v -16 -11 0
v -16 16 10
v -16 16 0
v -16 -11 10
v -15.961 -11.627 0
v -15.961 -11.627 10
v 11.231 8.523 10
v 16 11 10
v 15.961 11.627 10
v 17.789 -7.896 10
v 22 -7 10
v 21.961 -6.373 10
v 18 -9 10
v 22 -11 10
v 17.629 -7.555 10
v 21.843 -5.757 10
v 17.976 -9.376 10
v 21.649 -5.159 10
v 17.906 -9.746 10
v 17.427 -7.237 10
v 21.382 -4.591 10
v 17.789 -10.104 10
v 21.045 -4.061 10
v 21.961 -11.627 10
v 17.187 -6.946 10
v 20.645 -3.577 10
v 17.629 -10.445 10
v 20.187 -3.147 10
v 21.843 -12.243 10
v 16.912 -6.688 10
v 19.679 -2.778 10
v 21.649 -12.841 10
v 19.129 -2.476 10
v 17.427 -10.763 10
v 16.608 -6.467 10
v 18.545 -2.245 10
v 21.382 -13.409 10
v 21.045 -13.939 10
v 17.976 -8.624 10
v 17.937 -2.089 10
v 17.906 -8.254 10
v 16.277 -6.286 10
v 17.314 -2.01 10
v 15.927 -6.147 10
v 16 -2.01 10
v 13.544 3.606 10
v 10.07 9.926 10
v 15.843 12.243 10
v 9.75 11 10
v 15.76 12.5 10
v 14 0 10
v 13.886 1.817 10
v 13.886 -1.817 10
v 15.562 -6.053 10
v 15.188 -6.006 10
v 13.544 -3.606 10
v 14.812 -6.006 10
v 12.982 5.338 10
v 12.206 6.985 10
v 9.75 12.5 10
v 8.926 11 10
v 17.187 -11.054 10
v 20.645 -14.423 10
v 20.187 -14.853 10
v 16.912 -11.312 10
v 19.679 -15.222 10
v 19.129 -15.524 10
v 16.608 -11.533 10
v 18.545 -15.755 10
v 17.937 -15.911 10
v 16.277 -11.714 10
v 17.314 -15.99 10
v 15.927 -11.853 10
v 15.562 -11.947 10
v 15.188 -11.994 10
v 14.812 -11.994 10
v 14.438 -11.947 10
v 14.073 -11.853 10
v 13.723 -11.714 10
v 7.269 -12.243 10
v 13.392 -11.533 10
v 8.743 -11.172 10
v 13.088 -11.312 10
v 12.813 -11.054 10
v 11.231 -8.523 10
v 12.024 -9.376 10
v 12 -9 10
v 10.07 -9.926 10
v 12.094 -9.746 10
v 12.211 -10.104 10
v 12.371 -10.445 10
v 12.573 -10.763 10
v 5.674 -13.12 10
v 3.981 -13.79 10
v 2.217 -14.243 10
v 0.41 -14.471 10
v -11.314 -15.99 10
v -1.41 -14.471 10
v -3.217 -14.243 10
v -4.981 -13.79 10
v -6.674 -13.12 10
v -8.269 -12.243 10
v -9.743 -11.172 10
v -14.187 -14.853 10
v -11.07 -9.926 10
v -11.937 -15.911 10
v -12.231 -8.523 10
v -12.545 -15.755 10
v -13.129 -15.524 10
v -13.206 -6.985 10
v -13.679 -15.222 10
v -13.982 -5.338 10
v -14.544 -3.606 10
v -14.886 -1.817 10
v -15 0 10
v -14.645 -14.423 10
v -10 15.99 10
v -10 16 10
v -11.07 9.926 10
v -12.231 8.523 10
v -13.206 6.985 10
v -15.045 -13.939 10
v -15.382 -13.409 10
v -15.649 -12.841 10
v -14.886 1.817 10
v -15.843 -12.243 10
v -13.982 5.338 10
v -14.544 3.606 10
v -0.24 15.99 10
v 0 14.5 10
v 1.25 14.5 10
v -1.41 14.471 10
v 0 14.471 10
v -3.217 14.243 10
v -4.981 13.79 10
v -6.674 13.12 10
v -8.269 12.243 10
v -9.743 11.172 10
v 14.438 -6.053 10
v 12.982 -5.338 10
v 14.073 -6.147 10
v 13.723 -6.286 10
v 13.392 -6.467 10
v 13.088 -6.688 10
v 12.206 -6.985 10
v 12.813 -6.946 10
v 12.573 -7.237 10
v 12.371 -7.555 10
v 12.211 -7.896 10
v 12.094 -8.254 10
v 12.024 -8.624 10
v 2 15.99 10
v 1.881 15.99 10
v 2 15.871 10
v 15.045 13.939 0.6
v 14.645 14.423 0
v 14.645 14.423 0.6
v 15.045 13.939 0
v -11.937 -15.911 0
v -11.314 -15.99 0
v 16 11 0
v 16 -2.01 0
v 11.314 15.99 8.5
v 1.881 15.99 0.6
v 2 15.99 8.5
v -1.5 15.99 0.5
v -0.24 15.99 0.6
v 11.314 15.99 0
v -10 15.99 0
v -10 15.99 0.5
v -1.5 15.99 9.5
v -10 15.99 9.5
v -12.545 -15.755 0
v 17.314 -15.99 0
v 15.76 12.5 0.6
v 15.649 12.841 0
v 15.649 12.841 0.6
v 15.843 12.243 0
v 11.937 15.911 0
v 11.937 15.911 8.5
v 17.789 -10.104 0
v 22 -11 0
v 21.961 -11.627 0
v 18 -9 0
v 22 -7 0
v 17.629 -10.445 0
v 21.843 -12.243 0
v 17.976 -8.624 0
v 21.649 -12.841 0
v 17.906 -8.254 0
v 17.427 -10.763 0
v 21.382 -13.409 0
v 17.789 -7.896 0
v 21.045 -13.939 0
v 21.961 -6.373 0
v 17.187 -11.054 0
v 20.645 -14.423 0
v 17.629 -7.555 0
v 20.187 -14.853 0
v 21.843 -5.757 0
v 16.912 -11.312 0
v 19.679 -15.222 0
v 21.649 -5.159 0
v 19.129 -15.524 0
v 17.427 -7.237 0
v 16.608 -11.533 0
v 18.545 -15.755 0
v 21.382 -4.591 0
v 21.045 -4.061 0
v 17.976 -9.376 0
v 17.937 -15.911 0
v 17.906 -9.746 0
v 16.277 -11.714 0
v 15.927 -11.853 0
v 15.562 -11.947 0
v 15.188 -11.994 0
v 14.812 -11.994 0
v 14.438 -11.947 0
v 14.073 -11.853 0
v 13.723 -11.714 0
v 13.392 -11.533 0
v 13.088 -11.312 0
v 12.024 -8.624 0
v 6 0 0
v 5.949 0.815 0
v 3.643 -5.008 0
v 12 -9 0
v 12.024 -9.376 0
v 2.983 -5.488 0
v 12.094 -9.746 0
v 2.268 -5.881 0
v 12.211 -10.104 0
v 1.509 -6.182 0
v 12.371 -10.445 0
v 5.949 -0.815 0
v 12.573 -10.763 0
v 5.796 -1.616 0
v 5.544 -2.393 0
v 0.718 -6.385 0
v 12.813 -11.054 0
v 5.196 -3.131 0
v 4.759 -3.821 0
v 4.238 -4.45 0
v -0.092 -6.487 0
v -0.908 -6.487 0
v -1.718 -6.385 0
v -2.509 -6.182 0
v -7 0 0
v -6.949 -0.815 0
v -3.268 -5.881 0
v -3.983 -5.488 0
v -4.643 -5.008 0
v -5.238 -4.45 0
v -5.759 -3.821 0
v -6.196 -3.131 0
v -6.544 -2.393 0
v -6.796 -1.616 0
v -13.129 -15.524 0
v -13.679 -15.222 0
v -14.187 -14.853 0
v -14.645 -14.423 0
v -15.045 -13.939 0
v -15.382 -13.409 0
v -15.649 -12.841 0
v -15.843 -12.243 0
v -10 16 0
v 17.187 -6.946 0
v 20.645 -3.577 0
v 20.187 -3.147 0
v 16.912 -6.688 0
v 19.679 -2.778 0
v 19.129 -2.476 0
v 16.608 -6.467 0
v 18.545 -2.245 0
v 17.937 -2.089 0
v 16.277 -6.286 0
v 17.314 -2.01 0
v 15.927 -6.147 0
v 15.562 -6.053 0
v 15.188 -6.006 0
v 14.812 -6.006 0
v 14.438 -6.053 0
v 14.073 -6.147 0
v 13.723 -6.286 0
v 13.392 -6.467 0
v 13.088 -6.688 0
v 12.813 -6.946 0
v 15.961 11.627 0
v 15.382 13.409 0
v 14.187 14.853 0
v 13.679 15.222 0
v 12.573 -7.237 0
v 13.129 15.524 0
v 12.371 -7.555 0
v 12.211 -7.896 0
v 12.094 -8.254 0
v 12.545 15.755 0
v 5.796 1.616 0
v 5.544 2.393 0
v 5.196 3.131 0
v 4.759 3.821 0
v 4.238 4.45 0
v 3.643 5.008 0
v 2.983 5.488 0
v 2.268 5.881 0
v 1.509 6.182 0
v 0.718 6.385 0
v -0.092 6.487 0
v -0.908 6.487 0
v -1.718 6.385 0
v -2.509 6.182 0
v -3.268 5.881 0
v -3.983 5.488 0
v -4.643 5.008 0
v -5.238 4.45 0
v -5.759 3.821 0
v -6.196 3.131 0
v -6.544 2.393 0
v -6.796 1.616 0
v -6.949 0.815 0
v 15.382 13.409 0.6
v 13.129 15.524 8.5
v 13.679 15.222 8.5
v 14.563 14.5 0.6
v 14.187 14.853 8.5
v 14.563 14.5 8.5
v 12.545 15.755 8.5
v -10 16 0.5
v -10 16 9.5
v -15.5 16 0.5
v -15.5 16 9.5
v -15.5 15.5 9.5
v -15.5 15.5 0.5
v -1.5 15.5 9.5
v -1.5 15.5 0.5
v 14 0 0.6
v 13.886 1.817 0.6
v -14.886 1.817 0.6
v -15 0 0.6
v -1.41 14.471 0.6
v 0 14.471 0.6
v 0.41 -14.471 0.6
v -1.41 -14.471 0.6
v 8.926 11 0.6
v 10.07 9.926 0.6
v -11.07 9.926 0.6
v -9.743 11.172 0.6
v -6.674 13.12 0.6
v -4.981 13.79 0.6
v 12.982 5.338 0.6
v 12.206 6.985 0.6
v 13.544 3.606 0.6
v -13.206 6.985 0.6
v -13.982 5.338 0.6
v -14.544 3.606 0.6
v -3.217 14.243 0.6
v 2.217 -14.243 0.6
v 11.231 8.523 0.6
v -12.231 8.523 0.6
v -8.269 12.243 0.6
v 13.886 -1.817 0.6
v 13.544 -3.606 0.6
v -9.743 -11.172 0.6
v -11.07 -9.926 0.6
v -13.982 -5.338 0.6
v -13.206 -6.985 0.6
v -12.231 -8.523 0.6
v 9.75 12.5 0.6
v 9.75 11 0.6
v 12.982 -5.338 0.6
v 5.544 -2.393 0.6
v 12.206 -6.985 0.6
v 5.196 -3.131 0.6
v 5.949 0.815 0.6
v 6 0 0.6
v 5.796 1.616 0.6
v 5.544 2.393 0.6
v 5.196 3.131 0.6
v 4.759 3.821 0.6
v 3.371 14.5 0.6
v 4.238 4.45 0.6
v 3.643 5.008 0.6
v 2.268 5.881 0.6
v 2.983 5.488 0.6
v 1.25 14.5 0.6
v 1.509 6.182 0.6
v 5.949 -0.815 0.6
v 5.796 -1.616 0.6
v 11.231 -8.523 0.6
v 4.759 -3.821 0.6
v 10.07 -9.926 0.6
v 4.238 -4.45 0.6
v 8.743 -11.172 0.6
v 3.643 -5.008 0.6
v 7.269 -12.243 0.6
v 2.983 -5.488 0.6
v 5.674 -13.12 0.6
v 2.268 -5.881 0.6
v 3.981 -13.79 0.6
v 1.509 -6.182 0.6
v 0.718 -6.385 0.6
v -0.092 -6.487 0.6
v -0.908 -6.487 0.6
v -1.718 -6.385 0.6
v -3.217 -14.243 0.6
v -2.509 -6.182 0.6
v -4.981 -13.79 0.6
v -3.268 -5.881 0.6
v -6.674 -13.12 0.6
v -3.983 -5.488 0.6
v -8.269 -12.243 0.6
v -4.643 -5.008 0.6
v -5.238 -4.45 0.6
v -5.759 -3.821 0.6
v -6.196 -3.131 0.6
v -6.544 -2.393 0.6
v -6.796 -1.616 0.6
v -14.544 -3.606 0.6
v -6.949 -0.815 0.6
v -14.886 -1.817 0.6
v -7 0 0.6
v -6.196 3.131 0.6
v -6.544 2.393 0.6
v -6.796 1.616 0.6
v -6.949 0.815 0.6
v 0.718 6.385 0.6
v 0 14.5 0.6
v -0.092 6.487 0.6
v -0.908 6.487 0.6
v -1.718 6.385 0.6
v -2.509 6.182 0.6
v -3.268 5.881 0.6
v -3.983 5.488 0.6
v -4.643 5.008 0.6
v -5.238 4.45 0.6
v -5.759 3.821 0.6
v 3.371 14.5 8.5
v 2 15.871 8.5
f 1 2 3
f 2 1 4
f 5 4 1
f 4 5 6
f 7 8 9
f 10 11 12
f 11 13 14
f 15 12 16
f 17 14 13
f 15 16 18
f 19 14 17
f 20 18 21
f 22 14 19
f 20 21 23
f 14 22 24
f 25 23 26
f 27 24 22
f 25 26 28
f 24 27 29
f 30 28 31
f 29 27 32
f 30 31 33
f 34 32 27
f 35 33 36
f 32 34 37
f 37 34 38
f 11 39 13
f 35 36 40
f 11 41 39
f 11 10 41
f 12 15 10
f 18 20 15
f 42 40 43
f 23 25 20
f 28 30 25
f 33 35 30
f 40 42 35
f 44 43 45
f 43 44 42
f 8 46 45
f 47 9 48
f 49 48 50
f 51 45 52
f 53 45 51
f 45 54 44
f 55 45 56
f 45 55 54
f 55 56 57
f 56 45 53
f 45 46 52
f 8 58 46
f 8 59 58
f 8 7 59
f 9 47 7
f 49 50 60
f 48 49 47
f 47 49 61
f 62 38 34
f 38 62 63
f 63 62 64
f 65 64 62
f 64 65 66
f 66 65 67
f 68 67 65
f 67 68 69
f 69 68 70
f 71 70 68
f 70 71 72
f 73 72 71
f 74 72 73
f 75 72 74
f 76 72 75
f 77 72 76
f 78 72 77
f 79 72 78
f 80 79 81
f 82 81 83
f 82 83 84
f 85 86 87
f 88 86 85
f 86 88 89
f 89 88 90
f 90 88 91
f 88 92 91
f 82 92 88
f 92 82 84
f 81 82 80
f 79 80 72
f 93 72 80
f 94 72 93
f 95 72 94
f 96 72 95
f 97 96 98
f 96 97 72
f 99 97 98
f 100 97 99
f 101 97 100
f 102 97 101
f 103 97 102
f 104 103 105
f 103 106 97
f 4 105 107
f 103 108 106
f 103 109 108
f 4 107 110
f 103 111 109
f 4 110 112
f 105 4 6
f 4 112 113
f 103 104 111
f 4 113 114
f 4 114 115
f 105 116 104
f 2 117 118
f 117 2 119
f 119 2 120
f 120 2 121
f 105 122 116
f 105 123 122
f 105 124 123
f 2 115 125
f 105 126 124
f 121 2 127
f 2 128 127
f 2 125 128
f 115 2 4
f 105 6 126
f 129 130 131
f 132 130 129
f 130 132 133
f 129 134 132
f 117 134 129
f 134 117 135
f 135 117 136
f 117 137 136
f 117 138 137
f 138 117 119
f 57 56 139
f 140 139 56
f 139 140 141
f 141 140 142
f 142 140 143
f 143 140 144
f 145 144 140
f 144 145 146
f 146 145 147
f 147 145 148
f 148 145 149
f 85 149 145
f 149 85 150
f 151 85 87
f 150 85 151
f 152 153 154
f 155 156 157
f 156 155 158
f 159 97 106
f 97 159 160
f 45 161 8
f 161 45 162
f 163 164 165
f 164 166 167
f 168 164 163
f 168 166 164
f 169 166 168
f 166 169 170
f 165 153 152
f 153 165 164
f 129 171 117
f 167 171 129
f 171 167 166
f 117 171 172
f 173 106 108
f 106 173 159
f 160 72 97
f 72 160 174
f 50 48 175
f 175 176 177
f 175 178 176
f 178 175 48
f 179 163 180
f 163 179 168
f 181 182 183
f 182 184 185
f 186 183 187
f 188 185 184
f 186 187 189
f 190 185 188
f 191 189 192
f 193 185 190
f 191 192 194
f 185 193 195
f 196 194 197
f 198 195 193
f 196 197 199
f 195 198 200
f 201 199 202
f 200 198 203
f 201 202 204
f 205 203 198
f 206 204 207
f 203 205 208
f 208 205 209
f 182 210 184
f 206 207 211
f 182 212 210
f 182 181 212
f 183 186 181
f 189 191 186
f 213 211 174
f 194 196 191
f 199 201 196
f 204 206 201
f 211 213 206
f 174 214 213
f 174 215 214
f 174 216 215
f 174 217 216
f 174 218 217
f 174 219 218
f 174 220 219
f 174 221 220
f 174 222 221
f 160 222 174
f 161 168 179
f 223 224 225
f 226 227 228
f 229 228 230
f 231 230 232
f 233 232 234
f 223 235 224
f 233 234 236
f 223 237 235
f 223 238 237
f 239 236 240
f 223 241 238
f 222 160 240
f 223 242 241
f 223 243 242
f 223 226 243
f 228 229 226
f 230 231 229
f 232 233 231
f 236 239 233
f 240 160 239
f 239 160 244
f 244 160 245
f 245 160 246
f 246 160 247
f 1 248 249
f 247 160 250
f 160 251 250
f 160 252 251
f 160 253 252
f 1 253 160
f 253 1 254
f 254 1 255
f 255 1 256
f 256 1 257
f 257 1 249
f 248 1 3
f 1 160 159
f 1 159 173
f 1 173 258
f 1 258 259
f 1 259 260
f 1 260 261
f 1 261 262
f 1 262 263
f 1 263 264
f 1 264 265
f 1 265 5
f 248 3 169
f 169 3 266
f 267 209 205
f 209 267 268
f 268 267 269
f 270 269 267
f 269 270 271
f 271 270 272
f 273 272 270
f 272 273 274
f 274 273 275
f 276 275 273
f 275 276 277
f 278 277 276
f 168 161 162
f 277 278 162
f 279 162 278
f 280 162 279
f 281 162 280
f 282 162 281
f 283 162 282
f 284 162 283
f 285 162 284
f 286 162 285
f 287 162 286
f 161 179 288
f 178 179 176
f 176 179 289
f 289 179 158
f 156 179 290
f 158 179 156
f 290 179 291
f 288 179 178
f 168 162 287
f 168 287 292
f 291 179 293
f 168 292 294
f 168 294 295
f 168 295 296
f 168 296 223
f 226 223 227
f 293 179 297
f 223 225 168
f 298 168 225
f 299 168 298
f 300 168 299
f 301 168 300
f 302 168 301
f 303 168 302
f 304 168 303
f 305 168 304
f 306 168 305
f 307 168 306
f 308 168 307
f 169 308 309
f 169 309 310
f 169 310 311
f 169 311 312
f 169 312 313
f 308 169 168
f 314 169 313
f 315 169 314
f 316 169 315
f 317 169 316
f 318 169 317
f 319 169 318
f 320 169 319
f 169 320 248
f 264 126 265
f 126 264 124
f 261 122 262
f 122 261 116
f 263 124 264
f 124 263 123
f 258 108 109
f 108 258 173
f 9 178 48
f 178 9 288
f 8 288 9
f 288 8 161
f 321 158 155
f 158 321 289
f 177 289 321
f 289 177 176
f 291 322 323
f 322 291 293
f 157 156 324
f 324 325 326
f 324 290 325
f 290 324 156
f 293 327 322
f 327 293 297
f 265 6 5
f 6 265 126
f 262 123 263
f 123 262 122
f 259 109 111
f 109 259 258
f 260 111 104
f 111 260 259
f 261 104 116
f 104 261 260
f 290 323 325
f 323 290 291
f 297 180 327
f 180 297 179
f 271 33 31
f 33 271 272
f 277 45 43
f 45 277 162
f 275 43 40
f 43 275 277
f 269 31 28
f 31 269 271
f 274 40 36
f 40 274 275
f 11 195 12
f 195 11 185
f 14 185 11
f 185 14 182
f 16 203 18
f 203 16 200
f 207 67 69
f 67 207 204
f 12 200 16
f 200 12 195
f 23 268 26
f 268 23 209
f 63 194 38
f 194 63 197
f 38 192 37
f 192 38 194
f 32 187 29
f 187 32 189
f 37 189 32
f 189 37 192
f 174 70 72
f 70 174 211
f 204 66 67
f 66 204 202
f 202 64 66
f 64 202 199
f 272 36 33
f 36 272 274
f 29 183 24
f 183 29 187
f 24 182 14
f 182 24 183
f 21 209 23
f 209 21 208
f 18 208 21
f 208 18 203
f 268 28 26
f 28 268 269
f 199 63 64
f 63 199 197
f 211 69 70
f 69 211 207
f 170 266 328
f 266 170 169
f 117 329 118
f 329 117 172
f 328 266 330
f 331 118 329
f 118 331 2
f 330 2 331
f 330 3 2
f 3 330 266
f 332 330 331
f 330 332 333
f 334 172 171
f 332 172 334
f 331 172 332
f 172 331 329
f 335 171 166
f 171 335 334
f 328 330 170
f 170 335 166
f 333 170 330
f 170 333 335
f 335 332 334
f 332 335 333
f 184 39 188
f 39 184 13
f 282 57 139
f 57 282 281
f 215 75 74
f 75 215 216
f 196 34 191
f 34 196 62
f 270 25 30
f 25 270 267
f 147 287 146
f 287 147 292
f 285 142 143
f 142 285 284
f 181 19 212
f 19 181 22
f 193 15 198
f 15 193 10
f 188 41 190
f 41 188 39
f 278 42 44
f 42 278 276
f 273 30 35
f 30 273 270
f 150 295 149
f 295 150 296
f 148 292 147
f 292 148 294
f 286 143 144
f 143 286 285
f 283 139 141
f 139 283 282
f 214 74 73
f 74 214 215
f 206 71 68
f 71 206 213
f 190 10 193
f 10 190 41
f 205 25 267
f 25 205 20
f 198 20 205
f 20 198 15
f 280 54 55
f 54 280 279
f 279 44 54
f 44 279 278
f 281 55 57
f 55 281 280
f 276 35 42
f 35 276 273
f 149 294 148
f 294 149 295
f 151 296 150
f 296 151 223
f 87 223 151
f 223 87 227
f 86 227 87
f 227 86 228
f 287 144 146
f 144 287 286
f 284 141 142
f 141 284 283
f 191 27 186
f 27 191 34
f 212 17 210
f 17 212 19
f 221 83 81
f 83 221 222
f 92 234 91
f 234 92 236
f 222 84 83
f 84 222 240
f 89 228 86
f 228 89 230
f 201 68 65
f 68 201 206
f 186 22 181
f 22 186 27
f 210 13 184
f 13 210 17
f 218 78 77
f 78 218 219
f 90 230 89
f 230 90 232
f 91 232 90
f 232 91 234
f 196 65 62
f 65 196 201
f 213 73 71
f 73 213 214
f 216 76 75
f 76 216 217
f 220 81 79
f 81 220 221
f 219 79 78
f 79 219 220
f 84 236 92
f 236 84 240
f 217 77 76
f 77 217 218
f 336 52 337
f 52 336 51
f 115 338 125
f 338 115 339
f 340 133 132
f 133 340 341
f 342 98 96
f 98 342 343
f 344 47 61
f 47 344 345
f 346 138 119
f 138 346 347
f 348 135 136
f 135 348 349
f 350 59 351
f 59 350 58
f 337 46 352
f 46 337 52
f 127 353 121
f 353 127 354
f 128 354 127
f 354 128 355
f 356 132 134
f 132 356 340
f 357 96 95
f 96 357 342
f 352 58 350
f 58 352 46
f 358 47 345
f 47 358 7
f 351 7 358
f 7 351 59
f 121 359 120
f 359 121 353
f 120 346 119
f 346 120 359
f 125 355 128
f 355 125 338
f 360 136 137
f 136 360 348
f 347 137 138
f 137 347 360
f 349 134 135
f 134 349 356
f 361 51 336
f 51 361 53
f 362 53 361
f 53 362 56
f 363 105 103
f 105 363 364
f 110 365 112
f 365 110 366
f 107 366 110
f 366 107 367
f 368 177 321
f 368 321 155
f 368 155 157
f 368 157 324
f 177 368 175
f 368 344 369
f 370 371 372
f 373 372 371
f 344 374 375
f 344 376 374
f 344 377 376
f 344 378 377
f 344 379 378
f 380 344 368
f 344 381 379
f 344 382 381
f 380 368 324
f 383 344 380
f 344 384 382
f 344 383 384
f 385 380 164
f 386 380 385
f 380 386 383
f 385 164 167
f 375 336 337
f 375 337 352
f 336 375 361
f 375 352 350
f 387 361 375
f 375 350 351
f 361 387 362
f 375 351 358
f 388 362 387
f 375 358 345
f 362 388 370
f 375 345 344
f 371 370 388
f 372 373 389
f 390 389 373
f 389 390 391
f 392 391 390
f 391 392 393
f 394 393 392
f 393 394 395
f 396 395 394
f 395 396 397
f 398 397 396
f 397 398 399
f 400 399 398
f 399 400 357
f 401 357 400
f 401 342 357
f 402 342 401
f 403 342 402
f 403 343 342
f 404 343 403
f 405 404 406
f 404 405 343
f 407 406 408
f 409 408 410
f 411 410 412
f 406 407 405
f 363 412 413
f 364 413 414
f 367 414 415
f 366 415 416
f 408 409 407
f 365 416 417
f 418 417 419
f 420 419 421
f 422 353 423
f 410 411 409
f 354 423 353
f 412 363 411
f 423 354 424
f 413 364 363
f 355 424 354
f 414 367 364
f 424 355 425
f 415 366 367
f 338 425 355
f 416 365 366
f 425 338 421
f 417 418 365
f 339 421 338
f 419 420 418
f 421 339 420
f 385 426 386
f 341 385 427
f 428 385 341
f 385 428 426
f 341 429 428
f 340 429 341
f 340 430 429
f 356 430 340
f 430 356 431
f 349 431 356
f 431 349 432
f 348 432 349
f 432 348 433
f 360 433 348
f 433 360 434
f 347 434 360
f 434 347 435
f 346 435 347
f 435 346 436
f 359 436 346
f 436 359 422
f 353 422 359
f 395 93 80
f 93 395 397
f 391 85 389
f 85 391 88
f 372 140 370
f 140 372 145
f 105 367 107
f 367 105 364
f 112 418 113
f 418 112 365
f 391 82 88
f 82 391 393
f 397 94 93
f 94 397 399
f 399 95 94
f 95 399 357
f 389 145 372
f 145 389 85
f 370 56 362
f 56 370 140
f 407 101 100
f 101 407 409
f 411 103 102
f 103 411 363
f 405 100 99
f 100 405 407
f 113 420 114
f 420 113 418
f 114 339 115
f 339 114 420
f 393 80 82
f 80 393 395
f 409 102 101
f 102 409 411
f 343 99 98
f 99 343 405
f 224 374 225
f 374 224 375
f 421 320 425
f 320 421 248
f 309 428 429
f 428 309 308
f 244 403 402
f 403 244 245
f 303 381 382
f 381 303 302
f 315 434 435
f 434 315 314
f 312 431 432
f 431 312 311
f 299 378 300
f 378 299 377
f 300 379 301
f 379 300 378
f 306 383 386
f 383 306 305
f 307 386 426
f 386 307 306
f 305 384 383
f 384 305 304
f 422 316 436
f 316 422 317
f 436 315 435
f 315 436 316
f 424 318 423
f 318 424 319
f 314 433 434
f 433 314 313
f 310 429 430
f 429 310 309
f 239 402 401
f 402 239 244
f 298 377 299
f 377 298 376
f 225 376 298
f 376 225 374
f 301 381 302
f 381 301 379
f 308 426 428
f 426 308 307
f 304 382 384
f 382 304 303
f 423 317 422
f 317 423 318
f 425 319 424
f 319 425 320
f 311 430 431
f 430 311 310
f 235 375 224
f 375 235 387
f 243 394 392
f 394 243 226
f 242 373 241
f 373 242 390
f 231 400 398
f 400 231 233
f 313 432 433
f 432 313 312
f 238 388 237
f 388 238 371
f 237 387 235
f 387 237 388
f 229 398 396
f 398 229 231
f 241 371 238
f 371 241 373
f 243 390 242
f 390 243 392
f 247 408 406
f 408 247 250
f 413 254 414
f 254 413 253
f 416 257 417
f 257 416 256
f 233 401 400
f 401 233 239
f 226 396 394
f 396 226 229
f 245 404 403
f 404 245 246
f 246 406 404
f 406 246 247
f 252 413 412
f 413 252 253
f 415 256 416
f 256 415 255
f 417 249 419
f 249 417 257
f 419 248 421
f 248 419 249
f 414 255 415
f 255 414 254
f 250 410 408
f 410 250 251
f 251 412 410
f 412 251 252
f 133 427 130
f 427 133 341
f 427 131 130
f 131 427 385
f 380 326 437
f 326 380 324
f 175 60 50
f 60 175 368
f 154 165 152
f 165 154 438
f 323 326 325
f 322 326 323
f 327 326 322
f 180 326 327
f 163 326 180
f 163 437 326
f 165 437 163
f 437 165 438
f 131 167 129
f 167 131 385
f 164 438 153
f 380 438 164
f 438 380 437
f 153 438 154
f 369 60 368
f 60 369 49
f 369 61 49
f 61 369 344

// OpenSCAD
$fn = 50;


difference() {
	union() {
		hull() {
			translate(v = [-11.0000000000, 11.0000000000, 0]) {
				cylinder(h = 10, r = 5);
			}
			translate(v = [11.0000000000, 11.0000000000, 0]) {
				cylinder(h = 10, r = 5);
			}
			translate(v = [-11.0000000000, -11.0000000000, 0]) {
				cylinder(h = 10, r = 5);
			}
			translate(v = [11.0000000000, -11.0000000000, 0]) {
				cylinder(h = 10, r = 5);
			}
		}
		translate(v = [7.5000000000, -9.0000000000, 0]) {
			hull() {
				translate(v = [-9.5000000000, 2.0000000000, 0]) {
					cylinder(h = 10, r = 5);
				}
				translate(v = [9.5000000000, 2.0000000000, 0]) {
					cylinder(h = 10, r = 5);
				}
				translate(v = [-9.5000000000, -2.0000000000, 0]) {
					cylinder(h = 10, r = 5);
				}
				translate(v = [9.5000000000, -2.0000000000, 0]) {
					cylinder(h = 10, r = 5);
				}
			}
		}
		translate(v = [-16.0000000000, 10.0000000000, 0]) {
			cube(size = [6, 6, 10]);
		}
	}
	union() {
		translate(v = [-15.5000000000, 15.5000000000, 0.5000000000]) {
			cube(size = [14, 0.5000000000, 9.0000000000]);
		}
		translate(v = [15.0000000000, -9.0000000000, -50.0000000000]) {
			cylinder(h = 100, r = 3.0000000000);
		}
		translate(v = [-0.5000000000, 0.0000000000, 0.6000000000]) {
			cylinder(h = 12.4000000000, r = 14.5000000000);
		}
		translate(v = [-0.5000000000, 0.0000000000, -5.0000000000]) {
			cylinder(h = 10, r = 6.5000000000);
		}
		translate(v = [0.0000000000, 12.5000000000, 0.6000000000]) {
			cube(size = [16.0000000000, 2, 12.4000000000]);
		}
		translate(v = [2.0000000000, 12.5000000000, 8.5000000000]) {
			cube(size = [14.0000000000, 5, 1.5000000000]);
		}
		translate(v = [-3.0000000000, 18.7500000000, 0.6000000000]) {
			rotate(a = [0, 0, -45]) {
				cube(size = [10, 1.5000000000, 12.4000000000]);
			}
		}
		translate(v = [2.2500000000, 11.0000000000, 0.6000000000]) {
			cube(size = [7.5000000000, 2, 9.4000000000]);
		}
	}
}
